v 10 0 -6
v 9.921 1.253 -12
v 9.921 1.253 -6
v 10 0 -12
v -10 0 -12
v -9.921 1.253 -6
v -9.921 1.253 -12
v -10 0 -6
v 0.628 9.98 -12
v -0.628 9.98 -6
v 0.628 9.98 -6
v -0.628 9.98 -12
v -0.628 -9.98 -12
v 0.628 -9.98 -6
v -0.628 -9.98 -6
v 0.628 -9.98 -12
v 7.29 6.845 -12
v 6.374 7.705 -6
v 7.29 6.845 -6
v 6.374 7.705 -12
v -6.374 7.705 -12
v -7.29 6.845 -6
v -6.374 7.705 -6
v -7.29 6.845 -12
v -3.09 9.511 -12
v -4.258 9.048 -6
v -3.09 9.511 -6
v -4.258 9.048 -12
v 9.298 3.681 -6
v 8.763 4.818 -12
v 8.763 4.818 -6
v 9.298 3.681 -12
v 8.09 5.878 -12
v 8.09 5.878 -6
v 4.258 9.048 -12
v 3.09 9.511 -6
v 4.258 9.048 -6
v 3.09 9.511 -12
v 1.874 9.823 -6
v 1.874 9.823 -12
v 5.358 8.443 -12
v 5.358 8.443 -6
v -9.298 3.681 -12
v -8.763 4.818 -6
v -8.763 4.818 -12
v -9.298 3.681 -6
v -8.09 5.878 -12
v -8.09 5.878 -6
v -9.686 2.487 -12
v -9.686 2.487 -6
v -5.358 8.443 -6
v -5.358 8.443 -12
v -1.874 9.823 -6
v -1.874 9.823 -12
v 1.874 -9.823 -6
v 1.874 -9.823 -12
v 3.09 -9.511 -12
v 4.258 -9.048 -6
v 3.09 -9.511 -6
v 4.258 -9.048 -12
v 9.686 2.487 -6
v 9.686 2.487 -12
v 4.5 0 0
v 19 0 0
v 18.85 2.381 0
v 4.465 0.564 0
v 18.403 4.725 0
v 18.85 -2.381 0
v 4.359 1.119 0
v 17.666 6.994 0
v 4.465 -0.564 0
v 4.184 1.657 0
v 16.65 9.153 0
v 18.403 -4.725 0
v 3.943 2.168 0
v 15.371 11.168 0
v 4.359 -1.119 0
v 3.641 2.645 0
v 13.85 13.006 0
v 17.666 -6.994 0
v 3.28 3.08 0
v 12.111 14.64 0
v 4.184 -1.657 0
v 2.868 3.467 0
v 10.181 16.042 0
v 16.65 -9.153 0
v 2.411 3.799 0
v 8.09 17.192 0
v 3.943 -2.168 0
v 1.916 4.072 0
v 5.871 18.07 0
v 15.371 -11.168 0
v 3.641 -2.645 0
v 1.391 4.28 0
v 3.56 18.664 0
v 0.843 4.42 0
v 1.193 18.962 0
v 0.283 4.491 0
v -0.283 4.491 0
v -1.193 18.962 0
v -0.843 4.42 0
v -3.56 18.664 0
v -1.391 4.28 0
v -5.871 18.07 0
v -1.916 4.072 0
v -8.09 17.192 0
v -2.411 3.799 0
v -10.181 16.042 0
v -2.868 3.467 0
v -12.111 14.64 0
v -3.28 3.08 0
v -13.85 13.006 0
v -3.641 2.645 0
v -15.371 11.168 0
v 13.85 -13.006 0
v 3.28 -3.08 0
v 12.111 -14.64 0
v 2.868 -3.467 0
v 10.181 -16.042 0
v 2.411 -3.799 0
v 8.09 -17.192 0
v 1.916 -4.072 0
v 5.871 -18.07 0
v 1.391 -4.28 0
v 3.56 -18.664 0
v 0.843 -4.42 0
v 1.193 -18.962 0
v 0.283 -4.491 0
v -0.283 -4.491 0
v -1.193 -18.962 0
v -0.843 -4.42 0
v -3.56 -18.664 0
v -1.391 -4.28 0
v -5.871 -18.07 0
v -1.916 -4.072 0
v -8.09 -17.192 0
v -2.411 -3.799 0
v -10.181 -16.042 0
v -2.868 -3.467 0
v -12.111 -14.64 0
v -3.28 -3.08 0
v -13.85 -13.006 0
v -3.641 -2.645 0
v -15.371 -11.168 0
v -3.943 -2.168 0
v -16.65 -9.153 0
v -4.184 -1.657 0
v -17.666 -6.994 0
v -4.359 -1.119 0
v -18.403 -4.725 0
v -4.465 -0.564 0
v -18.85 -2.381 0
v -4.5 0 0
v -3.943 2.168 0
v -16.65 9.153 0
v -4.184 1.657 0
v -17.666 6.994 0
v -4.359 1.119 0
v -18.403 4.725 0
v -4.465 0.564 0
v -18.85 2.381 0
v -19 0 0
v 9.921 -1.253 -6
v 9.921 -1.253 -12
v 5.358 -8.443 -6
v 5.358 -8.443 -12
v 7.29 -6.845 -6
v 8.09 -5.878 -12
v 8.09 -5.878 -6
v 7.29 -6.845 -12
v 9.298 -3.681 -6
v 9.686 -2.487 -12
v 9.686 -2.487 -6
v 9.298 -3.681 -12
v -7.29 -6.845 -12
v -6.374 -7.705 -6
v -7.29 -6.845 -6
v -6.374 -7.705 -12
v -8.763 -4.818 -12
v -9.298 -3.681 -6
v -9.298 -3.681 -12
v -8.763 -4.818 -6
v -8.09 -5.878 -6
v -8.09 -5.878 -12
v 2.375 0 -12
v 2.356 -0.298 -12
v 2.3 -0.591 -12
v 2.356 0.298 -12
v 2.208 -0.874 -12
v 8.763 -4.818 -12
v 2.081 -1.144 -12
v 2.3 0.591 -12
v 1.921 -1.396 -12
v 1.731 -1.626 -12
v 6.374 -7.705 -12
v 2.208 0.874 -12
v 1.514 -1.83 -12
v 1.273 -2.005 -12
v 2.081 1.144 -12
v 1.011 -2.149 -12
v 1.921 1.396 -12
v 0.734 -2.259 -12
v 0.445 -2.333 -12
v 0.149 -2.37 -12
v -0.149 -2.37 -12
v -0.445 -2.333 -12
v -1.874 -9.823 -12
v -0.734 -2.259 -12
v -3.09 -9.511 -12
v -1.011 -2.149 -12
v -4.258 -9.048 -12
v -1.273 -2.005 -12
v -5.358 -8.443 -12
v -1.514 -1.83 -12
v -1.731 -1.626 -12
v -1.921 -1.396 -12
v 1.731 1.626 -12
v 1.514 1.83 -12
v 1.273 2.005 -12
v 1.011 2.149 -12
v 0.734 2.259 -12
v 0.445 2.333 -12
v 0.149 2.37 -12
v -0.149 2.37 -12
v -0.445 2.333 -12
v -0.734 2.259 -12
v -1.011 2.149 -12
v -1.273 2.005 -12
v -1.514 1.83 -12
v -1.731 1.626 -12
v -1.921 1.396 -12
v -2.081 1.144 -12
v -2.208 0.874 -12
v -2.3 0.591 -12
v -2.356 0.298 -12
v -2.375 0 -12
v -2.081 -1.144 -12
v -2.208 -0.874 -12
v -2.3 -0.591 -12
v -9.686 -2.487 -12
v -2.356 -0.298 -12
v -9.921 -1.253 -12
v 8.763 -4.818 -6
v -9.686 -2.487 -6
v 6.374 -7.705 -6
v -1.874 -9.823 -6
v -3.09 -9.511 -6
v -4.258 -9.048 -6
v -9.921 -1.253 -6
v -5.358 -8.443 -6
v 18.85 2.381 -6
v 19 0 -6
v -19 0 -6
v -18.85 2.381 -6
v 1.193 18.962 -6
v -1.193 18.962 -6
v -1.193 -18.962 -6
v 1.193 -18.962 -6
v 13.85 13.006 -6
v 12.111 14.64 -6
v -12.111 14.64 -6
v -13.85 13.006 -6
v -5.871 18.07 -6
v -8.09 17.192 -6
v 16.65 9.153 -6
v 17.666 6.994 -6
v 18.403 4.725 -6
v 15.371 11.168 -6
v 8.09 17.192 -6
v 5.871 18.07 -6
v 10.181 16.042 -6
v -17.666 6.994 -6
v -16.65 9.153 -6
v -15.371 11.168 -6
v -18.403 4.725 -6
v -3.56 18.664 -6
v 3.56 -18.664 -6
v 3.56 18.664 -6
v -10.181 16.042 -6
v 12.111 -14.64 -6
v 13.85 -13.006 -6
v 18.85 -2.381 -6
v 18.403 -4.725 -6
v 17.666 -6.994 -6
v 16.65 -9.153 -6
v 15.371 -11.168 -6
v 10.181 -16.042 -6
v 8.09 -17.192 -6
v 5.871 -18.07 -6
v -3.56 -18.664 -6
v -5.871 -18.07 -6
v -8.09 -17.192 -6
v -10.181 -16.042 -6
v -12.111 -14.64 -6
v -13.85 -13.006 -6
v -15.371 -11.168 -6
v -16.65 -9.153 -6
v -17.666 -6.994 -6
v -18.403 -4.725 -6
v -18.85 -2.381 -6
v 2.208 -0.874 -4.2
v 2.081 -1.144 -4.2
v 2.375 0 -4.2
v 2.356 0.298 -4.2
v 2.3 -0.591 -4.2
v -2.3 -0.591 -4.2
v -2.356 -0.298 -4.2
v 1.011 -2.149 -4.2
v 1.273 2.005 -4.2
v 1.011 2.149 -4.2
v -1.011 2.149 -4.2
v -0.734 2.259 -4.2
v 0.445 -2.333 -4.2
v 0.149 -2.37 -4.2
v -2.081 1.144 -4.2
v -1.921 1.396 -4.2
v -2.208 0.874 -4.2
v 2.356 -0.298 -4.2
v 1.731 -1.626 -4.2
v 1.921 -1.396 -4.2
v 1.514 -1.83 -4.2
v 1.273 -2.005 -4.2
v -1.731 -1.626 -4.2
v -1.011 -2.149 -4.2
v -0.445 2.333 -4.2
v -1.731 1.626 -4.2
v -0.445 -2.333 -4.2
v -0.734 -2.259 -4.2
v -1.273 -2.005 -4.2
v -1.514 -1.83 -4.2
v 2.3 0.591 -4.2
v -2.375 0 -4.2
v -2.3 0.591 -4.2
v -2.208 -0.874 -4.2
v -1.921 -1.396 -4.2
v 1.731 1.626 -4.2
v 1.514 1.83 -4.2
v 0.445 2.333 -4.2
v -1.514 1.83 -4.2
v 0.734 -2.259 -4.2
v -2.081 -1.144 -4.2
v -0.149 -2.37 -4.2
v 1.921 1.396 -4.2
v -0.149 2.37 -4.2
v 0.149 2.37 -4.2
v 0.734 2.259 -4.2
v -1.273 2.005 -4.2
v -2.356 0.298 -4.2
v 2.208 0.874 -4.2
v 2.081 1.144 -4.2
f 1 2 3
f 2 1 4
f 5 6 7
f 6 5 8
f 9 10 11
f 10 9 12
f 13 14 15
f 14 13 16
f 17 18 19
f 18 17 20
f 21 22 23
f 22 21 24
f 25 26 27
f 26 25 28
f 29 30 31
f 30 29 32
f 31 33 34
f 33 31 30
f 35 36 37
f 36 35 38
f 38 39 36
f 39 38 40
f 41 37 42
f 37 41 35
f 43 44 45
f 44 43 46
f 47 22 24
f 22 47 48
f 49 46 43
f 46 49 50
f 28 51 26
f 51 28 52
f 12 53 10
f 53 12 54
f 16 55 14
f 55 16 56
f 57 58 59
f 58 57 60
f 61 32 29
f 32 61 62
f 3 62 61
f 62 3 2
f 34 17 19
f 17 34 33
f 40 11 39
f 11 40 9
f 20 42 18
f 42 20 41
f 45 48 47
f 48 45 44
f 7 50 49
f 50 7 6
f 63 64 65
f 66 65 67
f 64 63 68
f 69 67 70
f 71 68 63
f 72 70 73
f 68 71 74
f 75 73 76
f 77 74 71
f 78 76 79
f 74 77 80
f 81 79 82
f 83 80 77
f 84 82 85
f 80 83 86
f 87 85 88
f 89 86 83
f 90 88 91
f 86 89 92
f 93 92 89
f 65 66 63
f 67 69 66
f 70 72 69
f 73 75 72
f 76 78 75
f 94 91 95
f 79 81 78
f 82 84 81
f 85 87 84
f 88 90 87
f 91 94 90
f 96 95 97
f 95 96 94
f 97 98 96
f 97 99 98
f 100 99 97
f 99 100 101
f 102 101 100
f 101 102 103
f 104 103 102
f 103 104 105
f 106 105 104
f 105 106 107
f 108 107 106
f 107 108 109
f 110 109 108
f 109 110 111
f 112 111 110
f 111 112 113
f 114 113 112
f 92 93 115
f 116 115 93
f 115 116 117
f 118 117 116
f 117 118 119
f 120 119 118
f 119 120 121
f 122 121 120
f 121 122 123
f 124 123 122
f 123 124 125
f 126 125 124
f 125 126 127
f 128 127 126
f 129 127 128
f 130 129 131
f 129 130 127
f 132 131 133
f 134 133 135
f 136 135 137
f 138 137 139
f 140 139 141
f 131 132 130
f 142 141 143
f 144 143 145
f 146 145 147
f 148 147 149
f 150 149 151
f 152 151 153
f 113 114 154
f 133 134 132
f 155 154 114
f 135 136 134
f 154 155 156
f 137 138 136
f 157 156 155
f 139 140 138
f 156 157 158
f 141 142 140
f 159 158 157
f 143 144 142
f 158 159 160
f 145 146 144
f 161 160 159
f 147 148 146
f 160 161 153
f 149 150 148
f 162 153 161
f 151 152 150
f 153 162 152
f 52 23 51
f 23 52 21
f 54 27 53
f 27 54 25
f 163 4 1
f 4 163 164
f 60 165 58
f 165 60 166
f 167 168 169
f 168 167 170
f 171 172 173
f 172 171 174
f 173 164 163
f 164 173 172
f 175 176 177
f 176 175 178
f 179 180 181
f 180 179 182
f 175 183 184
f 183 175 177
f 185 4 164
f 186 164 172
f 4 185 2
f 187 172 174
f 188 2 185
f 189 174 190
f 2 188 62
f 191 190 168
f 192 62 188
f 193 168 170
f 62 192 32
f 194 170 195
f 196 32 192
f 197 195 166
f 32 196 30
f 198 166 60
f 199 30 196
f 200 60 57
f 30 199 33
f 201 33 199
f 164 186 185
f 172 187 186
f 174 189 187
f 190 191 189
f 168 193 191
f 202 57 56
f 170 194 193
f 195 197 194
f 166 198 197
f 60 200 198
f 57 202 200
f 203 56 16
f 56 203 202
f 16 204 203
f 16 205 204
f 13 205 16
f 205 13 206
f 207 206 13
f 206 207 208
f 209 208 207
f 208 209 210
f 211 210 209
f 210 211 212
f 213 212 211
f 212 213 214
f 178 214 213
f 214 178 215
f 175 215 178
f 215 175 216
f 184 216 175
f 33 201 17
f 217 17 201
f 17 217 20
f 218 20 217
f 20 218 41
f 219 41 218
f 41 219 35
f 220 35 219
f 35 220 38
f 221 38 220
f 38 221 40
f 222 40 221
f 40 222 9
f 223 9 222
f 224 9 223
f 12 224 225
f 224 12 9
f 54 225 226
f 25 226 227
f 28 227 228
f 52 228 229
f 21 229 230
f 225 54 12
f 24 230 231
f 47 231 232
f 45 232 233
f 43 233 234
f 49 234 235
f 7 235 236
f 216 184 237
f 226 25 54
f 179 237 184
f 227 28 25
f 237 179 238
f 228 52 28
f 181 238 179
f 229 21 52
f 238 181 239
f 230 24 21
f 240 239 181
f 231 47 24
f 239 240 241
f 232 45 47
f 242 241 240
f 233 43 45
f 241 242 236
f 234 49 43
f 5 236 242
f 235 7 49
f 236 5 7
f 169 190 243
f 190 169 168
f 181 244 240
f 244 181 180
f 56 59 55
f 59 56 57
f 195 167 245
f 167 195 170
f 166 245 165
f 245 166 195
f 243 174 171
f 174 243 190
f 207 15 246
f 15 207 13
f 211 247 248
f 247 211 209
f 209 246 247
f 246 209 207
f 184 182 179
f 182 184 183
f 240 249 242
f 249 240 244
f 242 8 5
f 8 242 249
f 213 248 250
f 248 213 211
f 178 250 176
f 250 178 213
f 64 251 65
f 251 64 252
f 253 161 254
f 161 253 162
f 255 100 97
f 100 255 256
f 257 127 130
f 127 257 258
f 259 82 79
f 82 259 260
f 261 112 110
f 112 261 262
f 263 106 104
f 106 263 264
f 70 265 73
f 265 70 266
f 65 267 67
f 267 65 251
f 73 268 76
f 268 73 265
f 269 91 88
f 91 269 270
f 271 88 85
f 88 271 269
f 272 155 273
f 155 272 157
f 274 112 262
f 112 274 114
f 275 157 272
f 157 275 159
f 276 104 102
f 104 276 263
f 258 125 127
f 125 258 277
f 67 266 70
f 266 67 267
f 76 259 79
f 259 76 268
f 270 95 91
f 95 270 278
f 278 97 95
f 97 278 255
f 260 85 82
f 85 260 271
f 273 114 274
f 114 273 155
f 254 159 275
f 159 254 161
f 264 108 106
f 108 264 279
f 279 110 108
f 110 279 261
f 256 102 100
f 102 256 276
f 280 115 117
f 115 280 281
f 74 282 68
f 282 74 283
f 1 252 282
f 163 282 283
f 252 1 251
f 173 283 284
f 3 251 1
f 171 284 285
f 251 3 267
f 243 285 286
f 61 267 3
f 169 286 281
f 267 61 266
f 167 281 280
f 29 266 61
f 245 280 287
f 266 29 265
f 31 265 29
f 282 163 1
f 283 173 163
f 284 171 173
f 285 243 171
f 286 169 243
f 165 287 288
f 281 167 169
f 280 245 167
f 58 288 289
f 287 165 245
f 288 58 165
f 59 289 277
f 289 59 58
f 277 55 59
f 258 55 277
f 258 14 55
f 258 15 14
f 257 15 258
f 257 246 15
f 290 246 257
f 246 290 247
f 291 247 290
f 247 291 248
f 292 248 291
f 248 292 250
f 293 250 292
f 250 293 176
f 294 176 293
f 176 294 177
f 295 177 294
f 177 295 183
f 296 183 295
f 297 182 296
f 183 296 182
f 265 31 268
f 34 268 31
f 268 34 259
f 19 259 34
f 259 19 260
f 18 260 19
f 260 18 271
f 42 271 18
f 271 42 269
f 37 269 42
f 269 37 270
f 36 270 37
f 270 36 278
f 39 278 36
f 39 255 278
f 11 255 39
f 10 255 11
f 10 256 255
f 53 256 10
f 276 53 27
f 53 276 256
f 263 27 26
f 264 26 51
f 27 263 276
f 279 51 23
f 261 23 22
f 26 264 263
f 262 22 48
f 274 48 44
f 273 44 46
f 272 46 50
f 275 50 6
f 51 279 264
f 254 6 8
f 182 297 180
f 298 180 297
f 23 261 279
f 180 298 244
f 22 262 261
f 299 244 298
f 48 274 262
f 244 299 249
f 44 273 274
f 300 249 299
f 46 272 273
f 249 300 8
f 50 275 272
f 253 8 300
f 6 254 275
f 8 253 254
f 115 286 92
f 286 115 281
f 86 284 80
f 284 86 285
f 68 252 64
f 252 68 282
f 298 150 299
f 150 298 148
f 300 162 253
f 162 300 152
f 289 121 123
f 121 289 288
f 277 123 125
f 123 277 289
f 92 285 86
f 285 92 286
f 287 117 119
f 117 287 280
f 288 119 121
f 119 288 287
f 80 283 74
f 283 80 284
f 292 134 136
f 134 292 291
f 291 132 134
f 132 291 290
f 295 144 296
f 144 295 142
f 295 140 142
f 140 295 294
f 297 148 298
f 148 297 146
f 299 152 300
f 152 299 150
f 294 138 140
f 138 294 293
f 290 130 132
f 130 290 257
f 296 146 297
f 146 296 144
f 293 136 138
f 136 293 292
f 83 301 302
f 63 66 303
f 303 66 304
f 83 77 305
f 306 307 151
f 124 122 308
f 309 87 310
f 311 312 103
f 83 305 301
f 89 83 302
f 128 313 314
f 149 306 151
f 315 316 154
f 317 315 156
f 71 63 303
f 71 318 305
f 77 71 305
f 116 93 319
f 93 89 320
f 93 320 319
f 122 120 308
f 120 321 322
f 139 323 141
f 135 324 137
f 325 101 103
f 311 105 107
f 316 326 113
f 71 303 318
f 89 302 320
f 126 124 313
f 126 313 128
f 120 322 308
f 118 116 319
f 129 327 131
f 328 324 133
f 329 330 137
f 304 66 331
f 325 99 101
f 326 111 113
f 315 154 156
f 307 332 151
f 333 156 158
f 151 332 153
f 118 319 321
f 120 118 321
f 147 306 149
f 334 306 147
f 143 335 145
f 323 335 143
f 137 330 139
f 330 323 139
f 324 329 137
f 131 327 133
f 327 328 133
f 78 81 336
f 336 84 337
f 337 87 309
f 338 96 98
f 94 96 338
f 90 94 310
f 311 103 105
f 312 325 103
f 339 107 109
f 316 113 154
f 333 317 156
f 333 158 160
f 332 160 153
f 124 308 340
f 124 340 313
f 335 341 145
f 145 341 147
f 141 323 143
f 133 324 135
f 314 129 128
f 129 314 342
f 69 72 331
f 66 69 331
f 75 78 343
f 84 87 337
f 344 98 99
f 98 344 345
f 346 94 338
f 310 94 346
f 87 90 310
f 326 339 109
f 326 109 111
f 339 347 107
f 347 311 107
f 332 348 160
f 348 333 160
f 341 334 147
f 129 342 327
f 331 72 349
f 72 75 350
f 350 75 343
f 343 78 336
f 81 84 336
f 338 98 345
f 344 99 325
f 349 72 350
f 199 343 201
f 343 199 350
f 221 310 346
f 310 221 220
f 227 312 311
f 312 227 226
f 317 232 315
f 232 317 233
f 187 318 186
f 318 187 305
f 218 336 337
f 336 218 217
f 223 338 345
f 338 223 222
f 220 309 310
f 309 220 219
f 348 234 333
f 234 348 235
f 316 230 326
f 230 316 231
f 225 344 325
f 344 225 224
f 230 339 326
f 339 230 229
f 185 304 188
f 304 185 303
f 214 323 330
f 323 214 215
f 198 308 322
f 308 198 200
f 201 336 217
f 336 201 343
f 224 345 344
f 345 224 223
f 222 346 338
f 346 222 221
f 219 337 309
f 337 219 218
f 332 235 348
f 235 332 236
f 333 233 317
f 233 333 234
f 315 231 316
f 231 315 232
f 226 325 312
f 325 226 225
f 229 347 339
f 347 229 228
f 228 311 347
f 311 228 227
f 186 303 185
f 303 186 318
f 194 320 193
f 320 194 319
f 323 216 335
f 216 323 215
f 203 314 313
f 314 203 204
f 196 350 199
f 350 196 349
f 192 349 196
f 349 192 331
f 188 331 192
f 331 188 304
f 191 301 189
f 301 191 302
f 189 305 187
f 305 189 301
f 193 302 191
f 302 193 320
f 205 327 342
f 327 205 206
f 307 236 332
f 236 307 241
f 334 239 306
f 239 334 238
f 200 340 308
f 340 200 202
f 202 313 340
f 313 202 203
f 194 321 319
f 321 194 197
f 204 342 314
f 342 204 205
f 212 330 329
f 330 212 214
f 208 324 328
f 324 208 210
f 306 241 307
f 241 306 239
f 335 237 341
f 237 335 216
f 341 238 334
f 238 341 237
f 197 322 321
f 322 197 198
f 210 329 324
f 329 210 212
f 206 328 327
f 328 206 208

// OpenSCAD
$fn = 50;


difference() {
	union() {
		translate(v = [0, 0, -12.0000000000]) {
			cylinder(h = 12, r = 10.0000000000);
		}
		translate(v = [0, 0, -6.0000000000]) {
			cylinder(h = 6, r = 19.0000000000);
		}
	}
	union() {
		translate(v = [0, 0, 0]) {
			rotate(a = [0, 0, 0]) {
				difference() {
					union() {
						#translate(v = [0, 0, -12.0000000000]) {
							cylinder(h = 12, r = 2.2500000000);
						}
						#translate(v = [0, 0, -4.2000000000]) {
							cylinder(h = 4.2000000000, r = 10.0000000000, r1 = 2.3750000000, r2 = 4.5000000000);
						}
						#translate(v = [0, 0, -12.0000000000]) {
							cylinder(h = 12, r = 2.3750000000);
						}
						#translate(v = [0, 0, -12.0000000000]) {
							cylinder(h = 12, r = 2.2500000000);
						}
					}
					union();
				}
			}
		}
	}
}
